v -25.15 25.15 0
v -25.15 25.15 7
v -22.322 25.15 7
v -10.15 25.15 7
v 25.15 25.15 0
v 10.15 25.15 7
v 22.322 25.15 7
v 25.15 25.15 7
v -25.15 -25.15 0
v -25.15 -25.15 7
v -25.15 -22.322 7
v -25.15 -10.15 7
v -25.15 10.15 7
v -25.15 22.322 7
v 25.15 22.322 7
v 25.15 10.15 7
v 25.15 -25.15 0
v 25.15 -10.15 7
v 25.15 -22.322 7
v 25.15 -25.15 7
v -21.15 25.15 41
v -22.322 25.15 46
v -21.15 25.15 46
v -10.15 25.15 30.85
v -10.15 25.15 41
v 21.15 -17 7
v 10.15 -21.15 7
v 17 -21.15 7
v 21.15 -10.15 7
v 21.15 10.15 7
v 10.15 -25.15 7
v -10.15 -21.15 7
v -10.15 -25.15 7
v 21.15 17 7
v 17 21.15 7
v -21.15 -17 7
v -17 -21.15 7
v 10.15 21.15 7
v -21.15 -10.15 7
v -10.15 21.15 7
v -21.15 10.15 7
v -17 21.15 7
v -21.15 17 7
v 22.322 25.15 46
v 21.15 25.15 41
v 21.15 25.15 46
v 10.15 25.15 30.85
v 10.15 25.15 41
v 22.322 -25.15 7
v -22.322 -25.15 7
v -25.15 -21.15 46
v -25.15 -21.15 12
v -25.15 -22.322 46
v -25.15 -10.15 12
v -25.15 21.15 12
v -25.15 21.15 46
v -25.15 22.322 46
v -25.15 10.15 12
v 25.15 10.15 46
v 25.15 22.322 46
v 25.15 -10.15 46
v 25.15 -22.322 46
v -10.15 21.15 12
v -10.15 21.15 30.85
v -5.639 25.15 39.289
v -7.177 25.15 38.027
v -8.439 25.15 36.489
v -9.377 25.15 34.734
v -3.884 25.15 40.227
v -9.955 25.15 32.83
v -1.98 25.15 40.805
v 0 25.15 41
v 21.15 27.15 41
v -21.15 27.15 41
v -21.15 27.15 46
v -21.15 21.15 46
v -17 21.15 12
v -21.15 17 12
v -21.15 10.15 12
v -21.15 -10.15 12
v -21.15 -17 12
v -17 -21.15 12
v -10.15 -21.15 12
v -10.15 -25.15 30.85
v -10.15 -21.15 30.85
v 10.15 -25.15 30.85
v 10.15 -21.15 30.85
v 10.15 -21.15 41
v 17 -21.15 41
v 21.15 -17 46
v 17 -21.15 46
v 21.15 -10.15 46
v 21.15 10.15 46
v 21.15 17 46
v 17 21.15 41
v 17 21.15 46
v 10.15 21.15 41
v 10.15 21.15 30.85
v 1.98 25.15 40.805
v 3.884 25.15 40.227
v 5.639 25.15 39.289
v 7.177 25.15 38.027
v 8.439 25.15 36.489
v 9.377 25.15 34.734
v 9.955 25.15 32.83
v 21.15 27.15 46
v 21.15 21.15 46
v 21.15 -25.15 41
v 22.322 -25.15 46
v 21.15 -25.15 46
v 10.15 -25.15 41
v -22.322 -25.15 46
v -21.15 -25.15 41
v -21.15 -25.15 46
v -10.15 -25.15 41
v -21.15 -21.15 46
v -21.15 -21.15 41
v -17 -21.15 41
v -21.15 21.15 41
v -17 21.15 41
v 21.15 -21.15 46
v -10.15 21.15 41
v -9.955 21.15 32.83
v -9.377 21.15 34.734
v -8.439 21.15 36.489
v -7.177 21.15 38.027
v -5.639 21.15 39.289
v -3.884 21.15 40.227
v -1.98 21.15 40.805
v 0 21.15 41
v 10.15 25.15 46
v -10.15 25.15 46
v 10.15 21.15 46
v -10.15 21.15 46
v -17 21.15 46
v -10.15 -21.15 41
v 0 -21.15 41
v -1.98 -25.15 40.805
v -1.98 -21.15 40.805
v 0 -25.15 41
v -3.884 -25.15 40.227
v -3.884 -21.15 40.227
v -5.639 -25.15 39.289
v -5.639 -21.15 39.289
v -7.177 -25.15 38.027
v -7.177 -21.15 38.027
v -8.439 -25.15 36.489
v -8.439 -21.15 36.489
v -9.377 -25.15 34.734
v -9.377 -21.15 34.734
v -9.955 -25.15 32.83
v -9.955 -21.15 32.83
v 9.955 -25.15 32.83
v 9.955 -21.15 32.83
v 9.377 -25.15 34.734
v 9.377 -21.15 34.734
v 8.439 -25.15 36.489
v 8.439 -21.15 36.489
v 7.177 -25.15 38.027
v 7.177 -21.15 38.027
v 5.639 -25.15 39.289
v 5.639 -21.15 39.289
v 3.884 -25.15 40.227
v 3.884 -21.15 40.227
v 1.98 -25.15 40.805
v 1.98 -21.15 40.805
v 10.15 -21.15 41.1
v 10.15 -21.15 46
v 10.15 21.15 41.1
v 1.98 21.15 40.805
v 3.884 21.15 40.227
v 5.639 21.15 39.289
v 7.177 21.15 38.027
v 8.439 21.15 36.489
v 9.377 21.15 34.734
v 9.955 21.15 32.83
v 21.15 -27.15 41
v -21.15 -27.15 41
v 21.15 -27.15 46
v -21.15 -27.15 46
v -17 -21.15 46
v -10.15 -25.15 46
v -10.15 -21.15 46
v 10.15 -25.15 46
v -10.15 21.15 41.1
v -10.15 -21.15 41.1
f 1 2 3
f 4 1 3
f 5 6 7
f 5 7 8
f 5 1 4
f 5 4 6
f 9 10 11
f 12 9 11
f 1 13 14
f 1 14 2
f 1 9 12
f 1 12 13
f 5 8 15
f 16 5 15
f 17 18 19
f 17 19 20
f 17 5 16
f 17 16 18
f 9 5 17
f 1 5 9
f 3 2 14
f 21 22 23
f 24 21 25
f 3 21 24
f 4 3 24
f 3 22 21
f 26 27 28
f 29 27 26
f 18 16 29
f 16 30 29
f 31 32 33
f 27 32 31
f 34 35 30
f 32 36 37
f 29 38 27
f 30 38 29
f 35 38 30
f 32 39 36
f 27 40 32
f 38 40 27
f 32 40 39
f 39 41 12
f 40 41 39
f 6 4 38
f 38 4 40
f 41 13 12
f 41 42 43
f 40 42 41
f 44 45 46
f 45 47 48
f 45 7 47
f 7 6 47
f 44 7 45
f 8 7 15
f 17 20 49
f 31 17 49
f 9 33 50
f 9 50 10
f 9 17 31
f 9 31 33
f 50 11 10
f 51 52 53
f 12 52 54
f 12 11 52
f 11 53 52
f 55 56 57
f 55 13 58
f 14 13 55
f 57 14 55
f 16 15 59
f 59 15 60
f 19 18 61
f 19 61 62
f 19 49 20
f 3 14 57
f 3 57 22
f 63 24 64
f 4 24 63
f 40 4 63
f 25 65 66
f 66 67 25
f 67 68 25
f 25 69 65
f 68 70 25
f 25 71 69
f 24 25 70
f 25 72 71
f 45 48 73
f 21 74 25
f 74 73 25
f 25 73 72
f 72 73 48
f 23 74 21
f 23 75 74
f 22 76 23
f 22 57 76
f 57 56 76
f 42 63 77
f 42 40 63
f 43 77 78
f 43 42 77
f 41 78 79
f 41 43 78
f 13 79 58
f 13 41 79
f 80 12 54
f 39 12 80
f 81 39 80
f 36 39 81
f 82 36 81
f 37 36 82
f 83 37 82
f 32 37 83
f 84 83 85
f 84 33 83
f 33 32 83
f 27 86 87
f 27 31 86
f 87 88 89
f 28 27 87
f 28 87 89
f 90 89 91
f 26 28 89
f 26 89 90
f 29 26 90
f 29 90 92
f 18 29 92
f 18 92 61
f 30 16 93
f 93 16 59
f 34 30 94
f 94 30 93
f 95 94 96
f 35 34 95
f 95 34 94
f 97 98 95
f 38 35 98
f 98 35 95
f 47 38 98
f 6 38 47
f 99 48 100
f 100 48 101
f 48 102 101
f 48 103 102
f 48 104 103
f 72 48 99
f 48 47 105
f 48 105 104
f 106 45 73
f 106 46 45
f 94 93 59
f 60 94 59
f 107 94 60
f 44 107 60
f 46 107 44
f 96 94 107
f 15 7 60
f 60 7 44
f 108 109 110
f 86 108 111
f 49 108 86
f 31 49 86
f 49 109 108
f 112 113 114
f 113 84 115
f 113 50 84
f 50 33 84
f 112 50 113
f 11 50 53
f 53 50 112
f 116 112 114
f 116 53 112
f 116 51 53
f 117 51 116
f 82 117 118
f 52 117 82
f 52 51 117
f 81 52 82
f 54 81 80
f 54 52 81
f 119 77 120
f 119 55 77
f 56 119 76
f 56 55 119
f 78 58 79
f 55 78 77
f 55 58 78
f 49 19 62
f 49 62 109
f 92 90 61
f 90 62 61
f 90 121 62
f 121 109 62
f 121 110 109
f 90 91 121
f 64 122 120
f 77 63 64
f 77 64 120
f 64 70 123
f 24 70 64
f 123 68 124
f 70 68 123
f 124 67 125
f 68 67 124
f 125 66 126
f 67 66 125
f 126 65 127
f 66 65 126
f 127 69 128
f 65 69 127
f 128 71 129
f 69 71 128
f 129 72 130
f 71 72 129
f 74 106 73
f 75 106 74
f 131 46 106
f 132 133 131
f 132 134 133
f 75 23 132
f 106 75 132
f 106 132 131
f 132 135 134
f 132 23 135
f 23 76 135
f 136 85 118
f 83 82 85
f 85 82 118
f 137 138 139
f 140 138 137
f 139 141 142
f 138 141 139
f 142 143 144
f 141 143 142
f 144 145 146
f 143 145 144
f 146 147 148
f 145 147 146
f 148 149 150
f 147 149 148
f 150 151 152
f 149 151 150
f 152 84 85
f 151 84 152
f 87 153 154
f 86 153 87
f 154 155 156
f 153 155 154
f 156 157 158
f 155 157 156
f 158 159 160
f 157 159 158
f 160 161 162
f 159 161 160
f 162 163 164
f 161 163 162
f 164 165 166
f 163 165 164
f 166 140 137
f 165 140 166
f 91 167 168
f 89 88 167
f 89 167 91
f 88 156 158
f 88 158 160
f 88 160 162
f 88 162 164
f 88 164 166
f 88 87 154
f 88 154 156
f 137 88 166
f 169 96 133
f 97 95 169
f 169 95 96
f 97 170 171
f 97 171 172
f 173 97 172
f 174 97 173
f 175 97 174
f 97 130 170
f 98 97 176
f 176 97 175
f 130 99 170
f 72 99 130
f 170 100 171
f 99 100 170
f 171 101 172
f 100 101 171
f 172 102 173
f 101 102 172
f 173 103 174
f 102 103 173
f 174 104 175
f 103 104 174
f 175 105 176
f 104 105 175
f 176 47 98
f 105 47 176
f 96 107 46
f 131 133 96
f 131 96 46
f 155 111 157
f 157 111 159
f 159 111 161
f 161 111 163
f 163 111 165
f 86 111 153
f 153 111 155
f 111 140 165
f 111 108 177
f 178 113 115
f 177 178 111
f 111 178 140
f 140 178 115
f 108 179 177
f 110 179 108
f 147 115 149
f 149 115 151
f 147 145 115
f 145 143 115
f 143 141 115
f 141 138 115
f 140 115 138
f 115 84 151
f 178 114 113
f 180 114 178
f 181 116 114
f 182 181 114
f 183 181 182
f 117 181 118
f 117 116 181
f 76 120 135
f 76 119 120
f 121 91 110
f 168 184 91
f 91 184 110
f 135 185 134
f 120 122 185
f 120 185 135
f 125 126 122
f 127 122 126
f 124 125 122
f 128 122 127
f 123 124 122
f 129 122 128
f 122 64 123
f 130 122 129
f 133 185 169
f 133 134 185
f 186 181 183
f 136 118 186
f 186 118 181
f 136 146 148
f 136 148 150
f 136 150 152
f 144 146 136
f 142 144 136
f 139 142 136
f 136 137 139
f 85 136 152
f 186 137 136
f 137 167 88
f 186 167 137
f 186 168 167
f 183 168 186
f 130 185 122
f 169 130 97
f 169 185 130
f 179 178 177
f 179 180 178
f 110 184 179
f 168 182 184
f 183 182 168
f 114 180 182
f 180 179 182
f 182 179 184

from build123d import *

# Parameters (mm, degrees)
SKETCH_W     = 50.3
SKETCH_H     = 50.3
PAD_DEPTH    = 7
PAD001_DEPTH = 39
SKETCH002_W  = 42.3
SKETCH002_H  = 34
POCKET_DEPTH = 15
SKETCH003_W  = 42.3
SKETCH003_H  = 6
PAD002_DEPTH = 5
PAD003_DEPTH = 4
PAD004_DEPTH = 4


with BuildPart() as part:
    # Sketch → Pad (new body)
    with BuildSketch(Plane.XY):
        Rectangle(SKETCH_W, SKETCH_H)
    extrude(amount=PAD_DEPTH)

    # Sketch001 (on Face6 of Pad) → Pad001 (join)
    with BuildSketch(Plane.XY.offset(7)):
        Polygon((17, 21.15), (21.15, 17), (21.15, 10.15), (25.15, 10.15), (25.15, 22.321573), (22.321573, 25.15), (10.15, 25.15), (10.15, 21.15), align=None)
        Polygon((-17, 21.15), (-21.15, 17), (-21.15, 10.15), (-25.15, 10.15), (-25.15, 22.321573), (-22.321573, 25.15), (-10.15, 25.15), (-10.15, 21.15), align=None)
        Polygon((17, -21.15), (21.15, -17), (21.15, -10.15), (25.15, -10.15), (25.15, -22.321573), (22.321573, -25.15), (10.15, -25.15), (10.15, -21.15), align=None)
        Polygon((-17, -21.15), (-21.15, -17), (-21.15, -10.15), (-25.15, -10.15), (-25.15, -22.321573), (-22.321573, -25.15), (-10.15, -25.15), (-10.15, -21.15), align=None)
    extrude(amount=PAD001_DEPTH)

    # Sketch002 (on Face13 of Pad001) → Pocket (cut)
    with BuildSketch(Plane(origin=(-25.15, 0, 0), x_dir=(0, -1, 0), z_dir=(-1, 0, 0))):
        with Locations((0, 29)):
            Rectangle(SKETCH002_W, SKETCH002_H)
    extrude(amount=-POCKET_DEPTH, mode=Mode.SUBTRACT)

    # Sketch003 (on Face50 of Pocket) → Pad002 (join)
    with BuildSketch(Plane.XY.offset(46)):
        with Locations((0, -24.15)):
            Rectangle(SKETCH003_W, SKETCH003_H)
        with Locations((0, 24.15)):
            Rectangle(SKETCH003_W, SKETCH003_H)
    extrude(amount=-PAD002_DEPTH)

    # Sketch004 (on Face44 of Pad002) → Pad003 (join)
    with BuildSketch(Plane.XZ.offset(25.15)):
        with BuildLine():
            ThreePointArc((10.15, 30.85), (0, 41), (-10.15, 30.85))
            Line((-10.15, 41.1), (-10.15, 30.85))
            Line((10.15, 41.1), (-10.15, 41.1))
            Line((10.15, 30.85), (10.15, 41.1))
        make_face()
    extrude(amount=-PAD003_DEPTH)

    # Sketch005 (on Face6 of Pad003) → Pad004 (join)
    with BuildSketch(Plane(origin=(0, 25.15, 0), x_dir=(-1, 0, 0), z_dir=(0, 1, 0))):
        with BuildLine():
            ThreePointArc((10.15, 30.85), (0, 41), (-10.15, 30.85))
            Line((-10.15, 30.85), (-10.15, 41.1))
            Line((-10.15, 41.1), (10.15, 41.1))
            Line((10.15, 30.85), (10.15, 41.1))
        make_face()
    extrude(amount=-PAD004_DEPTH)


solid = part.part
